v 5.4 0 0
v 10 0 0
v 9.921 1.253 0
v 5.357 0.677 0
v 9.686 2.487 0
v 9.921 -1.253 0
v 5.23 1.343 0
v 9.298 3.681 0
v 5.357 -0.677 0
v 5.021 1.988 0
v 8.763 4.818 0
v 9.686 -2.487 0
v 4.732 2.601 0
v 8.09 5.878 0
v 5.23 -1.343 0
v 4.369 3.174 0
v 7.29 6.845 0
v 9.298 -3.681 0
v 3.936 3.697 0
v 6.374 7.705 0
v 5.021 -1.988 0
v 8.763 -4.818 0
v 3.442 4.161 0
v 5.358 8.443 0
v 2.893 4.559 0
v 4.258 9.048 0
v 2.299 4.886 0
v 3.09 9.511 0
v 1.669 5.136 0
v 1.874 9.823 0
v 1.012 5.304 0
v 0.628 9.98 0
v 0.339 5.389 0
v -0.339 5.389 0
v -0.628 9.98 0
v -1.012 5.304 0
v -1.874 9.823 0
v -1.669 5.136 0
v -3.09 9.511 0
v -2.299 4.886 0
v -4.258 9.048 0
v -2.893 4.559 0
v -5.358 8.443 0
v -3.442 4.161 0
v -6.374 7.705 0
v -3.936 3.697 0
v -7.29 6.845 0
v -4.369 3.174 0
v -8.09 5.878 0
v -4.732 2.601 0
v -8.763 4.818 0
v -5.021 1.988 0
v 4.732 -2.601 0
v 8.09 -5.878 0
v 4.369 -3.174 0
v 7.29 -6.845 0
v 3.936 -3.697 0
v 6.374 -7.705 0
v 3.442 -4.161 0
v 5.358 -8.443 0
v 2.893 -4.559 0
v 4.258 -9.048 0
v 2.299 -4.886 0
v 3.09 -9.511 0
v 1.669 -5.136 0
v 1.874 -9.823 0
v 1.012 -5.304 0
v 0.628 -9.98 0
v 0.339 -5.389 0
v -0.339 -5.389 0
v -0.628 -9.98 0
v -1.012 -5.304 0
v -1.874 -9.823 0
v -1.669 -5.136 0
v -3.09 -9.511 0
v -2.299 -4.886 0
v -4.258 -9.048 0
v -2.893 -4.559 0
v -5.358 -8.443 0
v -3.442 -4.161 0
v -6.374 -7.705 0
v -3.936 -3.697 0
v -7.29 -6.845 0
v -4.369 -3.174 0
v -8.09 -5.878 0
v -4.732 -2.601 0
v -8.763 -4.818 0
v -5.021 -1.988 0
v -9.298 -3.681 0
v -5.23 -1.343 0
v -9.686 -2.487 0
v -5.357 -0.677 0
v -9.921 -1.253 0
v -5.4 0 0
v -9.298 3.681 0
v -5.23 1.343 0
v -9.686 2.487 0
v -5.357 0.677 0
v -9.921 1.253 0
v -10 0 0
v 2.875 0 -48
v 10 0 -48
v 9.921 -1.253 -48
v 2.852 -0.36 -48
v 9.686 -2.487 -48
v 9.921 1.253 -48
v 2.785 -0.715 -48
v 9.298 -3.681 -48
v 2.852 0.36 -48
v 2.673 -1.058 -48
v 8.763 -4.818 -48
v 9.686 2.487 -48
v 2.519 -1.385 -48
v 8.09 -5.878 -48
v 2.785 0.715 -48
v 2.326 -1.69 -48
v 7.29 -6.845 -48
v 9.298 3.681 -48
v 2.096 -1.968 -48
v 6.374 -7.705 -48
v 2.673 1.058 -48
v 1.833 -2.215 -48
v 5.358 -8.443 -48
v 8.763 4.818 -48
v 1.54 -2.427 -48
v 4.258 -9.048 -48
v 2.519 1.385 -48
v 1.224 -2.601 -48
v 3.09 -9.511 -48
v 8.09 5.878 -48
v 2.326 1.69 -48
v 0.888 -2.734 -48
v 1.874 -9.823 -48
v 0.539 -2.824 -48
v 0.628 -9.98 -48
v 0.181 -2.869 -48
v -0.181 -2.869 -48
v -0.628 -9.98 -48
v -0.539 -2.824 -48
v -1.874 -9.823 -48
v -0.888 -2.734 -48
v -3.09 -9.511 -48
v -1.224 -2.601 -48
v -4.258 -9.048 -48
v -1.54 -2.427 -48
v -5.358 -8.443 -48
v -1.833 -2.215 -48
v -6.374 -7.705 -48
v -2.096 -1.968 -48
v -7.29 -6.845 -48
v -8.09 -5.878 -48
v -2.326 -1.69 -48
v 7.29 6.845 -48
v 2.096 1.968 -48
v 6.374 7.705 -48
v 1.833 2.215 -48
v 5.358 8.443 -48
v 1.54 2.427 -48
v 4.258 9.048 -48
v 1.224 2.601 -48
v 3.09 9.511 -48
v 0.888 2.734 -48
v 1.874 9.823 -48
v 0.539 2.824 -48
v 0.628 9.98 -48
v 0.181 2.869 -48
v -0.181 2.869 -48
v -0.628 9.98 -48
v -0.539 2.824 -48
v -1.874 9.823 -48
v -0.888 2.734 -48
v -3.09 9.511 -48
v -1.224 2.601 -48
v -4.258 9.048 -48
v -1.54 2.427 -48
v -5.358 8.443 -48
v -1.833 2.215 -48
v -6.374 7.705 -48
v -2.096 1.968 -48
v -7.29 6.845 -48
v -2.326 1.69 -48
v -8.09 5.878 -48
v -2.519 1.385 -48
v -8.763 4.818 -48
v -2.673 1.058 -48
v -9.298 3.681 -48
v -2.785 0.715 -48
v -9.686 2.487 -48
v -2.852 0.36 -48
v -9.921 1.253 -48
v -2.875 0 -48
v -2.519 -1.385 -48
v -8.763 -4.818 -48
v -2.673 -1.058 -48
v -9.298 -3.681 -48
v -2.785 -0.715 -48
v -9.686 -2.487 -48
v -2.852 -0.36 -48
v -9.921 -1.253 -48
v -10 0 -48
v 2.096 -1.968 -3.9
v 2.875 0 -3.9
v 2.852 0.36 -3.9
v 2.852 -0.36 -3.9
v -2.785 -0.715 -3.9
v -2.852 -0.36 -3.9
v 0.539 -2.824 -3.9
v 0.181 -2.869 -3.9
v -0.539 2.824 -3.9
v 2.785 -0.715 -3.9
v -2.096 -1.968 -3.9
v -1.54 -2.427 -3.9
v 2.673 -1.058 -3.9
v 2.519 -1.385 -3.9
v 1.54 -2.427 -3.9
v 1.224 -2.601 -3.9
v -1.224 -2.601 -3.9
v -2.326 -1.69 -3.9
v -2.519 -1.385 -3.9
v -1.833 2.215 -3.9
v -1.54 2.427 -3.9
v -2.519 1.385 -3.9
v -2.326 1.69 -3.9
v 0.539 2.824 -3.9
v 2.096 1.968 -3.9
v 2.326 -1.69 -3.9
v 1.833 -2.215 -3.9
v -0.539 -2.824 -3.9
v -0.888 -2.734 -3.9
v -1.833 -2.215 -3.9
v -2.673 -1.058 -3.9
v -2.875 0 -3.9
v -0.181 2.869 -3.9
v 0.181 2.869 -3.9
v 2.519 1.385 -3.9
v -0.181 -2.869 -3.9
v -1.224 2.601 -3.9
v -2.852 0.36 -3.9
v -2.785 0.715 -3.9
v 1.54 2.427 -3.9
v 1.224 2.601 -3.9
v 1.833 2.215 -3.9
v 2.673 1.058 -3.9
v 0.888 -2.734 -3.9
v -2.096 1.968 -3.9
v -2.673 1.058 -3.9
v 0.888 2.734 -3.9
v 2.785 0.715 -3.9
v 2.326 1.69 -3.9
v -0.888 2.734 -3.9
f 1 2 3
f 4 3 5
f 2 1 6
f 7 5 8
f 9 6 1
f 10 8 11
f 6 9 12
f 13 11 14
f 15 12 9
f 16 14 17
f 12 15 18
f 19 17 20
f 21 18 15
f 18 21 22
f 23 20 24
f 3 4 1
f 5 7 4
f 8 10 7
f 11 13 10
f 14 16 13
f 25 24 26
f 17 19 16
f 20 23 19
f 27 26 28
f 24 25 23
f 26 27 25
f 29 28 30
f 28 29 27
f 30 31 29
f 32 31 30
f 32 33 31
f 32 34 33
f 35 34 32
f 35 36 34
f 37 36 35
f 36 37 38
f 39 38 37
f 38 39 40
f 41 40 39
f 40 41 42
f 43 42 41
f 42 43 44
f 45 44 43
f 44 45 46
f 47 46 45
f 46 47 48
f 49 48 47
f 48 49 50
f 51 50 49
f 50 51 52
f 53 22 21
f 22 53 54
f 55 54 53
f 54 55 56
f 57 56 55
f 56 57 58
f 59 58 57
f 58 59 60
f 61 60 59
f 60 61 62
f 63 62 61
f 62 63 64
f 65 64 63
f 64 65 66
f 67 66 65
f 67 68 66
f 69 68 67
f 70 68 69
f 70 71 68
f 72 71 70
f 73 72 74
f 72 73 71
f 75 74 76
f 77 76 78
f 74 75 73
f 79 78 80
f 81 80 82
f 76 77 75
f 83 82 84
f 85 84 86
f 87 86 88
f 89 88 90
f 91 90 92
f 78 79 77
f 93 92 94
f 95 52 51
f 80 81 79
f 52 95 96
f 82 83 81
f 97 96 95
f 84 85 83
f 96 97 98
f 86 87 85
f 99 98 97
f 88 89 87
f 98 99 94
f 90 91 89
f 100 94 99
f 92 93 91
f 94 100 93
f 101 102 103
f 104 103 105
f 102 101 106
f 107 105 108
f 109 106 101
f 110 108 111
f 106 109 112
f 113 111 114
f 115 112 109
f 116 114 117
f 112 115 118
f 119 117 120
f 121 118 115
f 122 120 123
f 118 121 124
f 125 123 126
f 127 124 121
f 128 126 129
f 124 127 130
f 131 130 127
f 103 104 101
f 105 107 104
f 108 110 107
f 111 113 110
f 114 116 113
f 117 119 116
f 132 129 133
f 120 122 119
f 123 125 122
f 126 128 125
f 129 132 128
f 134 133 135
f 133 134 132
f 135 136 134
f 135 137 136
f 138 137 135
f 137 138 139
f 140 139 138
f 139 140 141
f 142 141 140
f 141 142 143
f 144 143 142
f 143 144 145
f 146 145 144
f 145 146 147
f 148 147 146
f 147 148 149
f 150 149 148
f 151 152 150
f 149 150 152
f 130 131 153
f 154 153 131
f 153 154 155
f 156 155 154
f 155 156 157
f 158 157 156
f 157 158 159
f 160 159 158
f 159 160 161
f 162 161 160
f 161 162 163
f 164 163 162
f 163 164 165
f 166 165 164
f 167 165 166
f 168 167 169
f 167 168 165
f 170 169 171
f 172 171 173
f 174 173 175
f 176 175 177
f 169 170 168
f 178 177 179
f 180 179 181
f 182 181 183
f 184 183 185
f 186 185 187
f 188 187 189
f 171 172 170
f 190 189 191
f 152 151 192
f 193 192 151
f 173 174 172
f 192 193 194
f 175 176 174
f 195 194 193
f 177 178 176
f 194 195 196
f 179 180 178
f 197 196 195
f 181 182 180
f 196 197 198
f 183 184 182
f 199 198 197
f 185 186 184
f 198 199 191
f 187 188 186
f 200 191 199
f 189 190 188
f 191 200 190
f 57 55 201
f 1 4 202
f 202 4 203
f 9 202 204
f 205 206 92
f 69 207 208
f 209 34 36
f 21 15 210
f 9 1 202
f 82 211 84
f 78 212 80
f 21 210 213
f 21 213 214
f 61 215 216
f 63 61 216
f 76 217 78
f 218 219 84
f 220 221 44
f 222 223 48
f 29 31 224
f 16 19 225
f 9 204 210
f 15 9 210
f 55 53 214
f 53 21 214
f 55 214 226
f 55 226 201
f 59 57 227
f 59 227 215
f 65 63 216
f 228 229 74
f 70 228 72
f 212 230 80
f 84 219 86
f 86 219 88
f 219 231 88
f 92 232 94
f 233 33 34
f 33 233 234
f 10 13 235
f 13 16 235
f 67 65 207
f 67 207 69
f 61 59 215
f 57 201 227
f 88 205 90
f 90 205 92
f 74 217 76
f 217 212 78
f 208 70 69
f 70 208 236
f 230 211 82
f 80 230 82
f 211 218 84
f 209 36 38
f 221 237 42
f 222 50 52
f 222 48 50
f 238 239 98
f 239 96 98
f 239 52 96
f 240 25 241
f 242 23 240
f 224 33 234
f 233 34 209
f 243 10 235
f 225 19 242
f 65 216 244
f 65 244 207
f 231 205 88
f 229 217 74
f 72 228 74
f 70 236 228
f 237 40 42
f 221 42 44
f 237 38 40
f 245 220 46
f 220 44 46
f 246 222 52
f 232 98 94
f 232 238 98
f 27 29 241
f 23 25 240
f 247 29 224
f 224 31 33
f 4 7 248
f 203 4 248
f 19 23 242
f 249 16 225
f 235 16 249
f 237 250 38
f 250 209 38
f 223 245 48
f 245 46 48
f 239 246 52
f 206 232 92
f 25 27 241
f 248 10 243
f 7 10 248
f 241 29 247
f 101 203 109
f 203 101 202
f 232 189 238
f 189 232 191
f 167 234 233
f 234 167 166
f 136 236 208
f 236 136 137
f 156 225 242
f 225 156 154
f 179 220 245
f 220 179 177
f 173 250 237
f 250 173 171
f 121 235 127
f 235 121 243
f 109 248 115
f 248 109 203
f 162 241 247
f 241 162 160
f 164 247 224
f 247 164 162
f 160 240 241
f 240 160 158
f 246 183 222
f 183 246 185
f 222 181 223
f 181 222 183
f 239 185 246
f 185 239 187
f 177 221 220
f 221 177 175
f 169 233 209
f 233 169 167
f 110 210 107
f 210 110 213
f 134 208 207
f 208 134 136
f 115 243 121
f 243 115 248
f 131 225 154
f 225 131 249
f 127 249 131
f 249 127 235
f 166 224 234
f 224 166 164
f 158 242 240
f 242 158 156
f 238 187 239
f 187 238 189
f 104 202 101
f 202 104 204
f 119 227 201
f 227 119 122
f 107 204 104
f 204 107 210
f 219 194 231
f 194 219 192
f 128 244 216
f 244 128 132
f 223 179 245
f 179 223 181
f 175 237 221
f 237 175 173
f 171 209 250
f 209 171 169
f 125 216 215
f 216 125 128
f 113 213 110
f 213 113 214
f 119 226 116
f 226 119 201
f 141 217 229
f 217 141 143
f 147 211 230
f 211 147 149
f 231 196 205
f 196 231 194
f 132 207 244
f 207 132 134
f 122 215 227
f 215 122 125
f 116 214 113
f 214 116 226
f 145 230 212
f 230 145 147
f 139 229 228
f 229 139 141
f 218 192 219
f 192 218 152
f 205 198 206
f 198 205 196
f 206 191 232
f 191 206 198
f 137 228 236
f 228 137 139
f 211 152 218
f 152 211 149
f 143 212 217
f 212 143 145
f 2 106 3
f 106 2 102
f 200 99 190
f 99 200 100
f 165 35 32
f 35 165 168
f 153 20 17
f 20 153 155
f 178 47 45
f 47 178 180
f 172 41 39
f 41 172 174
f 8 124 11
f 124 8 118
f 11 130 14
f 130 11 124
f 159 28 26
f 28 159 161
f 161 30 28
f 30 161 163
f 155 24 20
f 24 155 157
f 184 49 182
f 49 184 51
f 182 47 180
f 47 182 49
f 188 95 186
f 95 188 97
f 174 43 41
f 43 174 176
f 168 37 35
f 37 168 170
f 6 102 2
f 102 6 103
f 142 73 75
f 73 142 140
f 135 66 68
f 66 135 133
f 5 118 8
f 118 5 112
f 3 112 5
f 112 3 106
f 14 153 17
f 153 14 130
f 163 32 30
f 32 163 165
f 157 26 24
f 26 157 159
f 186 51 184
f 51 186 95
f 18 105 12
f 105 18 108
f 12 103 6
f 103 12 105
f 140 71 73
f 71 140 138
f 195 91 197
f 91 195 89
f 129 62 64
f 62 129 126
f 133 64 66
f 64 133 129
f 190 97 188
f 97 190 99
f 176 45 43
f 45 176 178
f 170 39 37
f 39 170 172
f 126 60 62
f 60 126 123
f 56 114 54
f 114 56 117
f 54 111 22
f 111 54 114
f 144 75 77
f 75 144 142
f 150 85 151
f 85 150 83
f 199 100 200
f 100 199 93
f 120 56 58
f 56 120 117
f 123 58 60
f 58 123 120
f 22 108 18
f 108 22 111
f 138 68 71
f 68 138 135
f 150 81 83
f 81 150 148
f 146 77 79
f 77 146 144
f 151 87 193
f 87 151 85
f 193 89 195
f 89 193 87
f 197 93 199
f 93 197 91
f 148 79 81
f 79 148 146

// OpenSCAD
$fn = 50;


difference() {
	union() {
		translate(v = [0, 0, -48.0000000000]) {
			cylinder(h = 48, r = 10.0000000000);
		}
	}
	union() {
		translate(v = [0, 0, 0]) {
			rotate(a = [0, 0, 0]) {
				difference() {
					union() {
						#translate(v = [0, 0, -48.0000000000]) {
							cylinder(h = 48, r = 2.6000000000);
						}
						#translate(v = [0, 0, -3.9000000000]) {
							cylinder(h = 3.9000000000, r = 10.0000000000, r1 = 2.8750000000, r2 = 5.4000000000);
						}
						#translate(v = [0, 0, -48.0000000000]) {
							cylinder(h = 48, r = 2.8750000000);
						}
						#translate(v = [0, 0, -48.0000000000]) {
							cylinder(h = 48, r = 2.6000000000);
						}
					}
					union();
				}
			}
		}
	}
}
